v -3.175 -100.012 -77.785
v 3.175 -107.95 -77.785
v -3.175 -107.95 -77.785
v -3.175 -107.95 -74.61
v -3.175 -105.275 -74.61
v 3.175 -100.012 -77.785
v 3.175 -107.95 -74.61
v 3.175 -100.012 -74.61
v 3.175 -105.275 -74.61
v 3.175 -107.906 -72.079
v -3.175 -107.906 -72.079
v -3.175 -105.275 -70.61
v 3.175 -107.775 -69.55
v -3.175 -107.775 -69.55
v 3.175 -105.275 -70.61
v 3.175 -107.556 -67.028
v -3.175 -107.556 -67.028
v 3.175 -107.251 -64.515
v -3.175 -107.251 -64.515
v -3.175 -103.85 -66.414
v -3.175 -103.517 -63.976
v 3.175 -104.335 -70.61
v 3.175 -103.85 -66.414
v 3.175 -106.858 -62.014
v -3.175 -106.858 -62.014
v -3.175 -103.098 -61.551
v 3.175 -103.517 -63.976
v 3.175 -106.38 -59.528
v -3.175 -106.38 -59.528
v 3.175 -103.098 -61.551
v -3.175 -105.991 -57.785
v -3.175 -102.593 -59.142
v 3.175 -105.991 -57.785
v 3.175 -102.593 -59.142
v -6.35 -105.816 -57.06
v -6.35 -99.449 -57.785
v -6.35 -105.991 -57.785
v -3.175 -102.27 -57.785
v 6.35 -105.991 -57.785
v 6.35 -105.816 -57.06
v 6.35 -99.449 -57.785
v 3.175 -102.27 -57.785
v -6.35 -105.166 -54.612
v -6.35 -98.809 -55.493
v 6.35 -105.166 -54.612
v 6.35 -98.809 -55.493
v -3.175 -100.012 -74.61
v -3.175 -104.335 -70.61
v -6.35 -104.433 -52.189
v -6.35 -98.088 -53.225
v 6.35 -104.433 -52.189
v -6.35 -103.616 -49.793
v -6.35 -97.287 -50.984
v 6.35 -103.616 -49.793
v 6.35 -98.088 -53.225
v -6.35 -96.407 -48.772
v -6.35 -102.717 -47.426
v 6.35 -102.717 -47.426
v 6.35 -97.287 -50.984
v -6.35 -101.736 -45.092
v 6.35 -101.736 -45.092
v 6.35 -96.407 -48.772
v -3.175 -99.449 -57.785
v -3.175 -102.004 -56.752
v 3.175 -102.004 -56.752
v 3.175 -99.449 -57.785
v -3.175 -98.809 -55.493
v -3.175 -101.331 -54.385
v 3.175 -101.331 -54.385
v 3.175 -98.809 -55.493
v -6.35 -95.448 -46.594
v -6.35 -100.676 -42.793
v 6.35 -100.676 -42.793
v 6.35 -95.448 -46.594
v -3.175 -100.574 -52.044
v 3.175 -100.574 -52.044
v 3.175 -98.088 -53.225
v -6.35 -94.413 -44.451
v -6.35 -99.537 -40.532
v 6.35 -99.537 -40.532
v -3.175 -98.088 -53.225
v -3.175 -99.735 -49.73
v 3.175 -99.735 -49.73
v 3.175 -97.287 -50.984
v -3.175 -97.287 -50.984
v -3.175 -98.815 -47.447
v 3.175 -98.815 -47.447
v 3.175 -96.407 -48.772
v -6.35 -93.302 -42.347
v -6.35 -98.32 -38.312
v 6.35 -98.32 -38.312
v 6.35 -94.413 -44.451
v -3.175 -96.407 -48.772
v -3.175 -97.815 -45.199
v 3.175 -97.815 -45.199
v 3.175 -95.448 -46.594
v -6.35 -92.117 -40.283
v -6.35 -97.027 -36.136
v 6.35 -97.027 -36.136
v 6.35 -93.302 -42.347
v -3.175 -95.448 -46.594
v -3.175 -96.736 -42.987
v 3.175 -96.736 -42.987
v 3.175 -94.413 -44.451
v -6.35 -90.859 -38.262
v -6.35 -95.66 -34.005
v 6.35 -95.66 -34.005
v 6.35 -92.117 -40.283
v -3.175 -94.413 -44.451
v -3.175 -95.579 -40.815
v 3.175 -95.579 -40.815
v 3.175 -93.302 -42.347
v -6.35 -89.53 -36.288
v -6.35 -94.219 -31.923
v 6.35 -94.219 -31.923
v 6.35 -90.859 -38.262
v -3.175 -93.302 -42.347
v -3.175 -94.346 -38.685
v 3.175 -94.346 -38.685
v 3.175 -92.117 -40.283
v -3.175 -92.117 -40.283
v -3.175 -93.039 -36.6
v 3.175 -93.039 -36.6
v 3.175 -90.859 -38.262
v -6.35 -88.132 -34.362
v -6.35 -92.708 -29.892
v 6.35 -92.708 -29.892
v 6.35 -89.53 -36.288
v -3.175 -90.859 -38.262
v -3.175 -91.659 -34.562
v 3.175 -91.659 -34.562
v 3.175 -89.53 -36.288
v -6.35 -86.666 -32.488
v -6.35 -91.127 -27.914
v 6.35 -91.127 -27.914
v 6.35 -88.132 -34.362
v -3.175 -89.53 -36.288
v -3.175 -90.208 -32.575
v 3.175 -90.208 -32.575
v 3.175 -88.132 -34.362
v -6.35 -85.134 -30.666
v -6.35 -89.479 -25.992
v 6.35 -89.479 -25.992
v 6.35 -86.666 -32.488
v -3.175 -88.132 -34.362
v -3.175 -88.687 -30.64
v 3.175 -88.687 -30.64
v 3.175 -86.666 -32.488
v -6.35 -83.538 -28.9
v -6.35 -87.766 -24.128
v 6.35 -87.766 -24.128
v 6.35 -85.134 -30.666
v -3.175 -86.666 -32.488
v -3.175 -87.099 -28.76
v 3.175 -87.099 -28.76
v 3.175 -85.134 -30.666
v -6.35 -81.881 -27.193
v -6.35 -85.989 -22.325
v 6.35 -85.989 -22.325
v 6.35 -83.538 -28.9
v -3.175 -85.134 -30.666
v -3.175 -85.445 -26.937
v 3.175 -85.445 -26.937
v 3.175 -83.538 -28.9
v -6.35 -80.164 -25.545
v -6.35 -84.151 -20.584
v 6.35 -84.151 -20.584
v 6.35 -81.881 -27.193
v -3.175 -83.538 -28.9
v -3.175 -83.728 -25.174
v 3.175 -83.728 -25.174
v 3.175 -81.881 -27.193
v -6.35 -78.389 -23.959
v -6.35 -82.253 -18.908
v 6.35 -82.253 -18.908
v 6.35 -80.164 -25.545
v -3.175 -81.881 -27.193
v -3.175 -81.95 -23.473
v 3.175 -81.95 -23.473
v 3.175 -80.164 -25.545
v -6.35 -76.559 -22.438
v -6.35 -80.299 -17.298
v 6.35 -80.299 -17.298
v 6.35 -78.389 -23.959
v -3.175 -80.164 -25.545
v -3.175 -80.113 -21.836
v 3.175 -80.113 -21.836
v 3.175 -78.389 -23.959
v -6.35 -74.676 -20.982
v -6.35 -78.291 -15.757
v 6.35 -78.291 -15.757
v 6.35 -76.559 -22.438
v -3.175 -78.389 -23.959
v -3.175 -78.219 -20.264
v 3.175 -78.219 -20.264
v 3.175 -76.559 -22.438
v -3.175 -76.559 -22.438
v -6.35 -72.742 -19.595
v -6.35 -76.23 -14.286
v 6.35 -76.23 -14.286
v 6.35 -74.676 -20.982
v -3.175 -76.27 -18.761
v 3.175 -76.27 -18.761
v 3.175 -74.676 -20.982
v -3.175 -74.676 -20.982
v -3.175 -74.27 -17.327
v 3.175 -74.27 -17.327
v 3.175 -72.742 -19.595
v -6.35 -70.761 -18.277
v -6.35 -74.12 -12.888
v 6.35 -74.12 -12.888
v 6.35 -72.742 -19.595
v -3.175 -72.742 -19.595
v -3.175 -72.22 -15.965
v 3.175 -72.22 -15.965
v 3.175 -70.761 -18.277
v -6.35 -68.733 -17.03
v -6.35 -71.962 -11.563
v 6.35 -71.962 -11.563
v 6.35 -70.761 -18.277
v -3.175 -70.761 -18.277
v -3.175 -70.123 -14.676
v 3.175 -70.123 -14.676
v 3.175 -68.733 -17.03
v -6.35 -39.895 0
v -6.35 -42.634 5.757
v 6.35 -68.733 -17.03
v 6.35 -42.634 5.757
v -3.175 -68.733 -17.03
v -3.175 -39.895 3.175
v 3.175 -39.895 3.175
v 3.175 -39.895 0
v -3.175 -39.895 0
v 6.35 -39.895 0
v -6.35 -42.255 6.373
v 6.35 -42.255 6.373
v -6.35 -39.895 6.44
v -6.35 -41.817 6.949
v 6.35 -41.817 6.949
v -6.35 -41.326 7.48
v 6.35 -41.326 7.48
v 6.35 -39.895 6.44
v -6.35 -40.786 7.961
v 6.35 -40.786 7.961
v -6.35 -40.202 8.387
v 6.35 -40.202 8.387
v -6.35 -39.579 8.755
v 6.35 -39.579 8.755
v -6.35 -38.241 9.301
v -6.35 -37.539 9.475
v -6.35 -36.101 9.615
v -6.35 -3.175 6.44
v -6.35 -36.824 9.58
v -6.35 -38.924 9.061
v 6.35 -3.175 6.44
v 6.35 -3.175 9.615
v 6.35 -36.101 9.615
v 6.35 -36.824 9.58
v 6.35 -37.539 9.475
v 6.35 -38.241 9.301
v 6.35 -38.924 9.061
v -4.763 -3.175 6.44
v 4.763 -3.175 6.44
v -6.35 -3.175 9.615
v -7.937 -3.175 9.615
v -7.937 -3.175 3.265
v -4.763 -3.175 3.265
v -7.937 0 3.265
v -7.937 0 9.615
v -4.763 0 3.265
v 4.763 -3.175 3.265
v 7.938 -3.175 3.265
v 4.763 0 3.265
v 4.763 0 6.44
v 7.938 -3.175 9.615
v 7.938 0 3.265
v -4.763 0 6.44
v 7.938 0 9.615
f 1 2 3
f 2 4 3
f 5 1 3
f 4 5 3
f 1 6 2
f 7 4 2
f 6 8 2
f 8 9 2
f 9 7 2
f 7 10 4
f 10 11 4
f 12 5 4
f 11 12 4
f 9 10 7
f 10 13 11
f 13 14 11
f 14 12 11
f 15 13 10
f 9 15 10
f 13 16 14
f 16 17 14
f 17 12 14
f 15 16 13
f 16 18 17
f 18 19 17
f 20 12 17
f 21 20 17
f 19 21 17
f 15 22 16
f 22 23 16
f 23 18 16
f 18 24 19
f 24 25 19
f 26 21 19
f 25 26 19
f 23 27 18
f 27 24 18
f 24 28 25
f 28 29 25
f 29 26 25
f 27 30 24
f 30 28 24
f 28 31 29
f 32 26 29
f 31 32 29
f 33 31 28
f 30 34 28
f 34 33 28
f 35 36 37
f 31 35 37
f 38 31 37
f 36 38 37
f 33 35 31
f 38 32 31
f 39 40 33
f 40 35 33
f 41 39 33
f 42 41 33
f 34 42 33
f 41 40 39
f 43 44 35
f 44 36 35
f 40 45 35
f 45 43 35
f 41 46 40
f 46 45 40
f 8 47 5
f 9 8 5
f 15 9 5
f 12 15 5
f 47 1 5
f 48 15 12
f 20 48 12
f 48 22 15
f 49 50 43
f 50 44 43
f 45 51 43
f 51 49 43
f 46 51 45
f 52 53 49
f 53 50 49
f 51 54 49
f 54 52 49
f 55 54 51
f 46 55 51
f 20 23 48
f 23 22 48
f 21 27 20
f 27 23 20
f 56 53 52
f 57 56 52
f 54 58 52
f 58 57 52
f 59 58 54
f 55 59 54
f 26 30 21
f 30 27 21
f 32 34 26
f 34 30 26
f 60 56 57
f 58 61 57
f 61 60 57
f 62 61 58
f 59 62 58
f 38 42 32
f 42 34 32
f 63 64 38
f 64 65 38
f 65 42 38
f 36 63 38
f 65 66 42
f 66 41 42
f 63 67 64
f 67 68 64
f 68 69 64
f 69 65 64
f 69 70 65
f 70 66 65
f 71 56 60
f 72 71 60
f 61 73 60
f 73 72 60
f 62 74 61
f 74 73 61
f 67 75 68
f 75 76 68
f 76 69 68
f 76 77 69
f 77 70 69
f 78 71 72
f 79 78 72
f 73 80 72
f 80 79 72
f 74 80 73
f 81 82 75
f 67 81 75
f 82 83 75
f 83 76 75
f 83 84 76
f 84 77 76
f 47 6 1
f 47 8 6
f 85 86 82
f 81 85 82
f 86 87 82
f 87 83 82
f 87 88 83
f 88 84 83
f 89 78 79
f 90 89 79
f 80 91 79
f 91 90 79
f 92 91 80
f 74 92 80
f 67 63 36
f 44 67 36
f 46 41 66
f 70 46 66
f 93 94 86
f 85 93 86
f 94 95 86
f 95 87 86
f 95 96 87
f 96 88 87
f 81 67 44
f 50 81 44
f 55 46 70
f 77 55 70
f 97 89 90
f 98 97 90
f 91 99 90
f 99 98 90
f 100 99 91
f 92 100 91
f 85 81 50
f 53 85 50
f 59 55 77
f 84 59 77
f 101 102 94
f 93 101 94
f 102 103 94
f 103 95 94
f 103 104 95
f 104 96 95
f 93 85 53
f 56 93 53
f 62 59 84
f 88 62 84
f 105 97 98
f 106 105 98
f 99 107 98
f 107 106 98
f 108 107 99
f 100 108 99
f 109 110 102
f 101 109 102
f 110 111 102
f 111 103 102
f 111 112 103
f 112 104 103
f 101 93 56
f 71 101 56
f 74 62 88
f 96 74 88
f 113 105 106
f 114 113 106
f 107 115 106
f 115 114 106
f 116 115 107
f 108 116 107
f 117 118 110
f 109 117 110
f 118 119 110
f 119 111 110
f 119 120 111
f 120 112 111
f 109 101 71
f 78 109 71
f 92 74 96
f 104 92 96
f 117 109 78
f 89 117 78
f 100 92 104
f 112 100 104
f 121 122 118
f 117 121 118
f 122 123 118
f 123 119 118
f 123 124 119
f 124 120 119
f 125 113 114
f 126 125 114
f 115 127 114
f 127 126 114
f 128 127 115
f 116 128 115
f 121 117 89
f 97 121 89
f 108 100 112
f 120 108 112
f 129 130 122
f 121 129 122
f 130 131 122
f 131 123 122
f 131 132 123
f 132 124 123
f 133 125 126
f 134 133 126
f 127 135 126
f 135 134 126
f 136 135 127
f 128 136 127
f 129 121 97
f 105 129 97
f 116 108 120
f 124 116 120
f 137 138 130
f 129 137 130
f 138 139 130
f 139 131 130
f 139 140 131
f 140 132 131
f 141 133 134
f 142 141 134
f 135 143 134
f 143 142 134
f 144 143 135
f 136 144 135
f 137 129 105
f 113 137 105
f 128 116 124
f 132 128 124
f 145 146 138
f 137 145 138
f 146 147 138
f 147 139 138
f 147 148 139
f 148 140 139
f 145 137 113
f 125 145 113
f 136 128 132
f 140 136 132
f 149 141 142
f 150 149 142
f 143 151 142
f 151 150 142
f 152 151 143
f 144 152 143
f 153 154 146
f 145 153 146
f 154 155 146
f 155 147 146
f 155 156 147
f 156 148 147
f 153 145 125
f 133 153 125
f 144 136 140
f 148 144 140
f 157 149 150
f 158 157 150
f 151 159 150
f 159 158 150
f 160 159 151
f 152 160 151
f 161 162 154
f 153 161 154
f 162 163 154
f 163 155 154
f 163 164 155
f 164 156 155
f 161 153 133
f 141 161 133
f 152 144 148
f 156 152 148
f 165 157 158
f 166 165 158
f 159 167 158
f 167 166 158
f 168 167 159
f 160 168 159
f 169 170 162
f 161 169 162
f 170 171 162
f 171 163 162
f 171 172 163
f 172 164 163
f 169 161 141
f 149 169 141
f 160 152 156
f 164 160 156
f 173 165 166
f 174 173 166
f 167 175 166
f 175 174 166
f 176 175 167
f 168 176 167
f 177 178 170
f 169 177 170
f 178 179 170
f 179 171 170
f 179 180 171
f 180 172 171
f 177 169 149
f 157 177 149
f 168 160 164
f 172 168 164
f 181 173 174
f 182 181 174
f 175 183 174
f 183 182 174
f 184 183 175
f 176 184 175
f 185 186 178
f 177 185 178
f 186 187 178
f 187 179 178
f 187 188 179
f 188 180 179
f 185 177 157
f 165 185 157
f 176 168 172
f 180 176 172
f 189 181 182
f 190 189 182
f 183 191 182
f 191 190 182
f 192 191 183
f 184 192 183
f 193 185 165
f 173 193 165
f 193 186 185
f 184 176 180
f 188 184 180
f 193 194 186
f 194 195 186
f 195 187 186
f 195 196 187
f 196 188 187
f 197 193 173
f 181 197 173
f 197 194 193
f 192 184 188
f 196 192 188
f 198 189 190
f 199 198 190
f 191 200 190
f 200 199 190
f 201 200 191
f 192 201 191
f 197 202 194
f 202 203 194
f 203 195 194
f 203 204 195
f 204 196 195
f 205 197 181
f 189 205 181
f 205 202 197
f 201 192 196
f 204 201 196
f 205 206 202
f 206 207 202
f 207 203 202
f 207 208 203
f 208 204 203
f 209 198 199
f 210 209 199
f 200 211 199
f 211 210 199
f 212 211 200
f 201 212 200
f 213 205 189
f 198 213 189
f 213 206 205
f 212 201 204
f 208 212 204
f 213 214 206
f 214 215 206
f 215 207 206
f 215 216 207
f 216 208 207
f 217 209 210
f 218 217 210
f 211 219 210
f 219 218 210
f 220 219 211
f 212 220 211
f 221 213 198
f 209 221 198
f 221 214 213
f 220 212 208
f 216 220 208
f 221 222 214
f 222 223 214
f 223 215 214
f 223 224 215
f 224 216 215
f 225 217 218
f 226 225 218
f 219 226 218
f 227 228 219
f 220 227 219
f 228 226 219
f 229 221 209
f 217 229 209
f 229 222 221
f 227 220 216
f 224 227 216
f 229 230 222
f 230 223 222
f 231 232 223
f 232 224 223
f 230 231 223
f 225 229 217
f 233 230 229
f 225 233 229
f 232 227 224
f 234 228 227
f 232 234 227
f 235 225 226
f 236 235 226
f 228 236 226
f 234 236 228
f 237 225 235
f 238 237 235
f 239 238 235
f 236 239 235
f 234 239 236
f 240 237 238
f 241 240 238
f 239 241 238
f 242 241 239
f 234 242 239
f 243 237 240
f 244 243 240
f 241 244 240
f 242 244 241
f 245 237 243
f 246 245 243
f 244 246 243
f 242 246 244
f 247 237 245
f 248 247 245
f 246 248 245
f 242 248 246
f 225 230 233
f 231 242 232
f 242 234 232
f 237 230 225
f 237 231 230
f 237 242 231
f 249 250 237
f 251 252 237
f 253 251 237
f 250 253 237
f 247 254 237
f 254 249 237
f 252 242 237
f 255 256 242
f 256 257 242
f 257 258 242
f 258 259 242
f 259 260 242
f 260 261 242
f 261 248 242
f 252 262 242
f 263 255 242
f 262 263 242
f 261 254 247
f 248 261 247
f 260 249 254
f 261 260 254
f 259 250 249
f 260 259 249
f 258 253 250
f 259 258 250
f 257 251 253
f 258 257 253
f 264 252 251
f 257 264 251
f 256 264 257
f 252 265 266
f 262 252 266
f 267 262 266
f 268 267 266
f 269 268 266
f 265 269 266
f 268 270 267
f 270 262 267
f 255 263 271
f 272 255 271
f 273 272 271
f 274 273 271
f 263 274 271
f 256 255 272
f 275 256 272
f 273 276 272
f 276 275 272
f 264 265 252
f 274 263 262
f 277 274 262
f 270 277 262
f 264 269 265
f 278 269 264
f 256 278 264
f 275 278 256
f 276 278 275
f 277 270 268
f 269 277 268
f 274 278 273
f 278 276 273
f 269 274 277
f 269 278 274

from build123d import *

# Parameters (mm, degrees)
SKETCH5_W           = 12.880016042
SKETCH5_H           = 15.834691301
CUT_EXTRUDE2_DEPTH  = 7.62
CUT_EXTRUDE6_REACH  = 62
SKETCH11_W          = 3.175
SKETCH11_H          = 3.175
BOSS_EXTRUDE1_DEPTH = 6.35
CUT_EXTRUDE4_DEPTH  = 3.175
SKETCH10_W          = 4
SKETCH10_H          = 0.5
CUT_EXTRUDE5_DEPTH  = 37.349999944
CUT_EXTRUDE7_DEPTH  = 40.64
BOSS_EXTRUDE3_DEPTH = 12.7
SKETCH19_W          = 21.319602533
SKETCH19_H          = 36.10119369
CUT_EXTRUDE10_DEPTH = 13.7
SKETCH15_W          = 6.35
SKETCH15_H          = 3.175
BOSS_EXTRUDE2_DEPTH = 1.5875
SKETCH17_W          = 3.175
SKETCH17_H          = 37.332237063
CUT_EXTRUDE9_DEPTH  = 20


with BuildPart() as part:
    # Sketch2 → Revolve1 (revolve)
    with BuildSketch(Plane(origin=(0, 0, 0), x_dir=(0, 0, -1), z_dir=(1, 0, 0))):
        Polygon((0, -50.8), (-29.999999944, 0), (0, 0), align=None)
    revolve(axis=Axis((0, 0, 0), (0, -1, 0)))

    # Sketch4 → Cut-Revolve1 (revolve, cut)
    with BuildSketch(Plane(origin=(0, 0, 0), x_dir=(0, 0, -1), z_dir=(1, 0, 0))):
        Polygon((0, -45.72), (-24.919999944, 0), (0, 0), align=None)
    revolve(axis=Axis((0, 16.11457811, 0), (0, -1, 0)), mode=Mode.SUBTRACT)

    # Sketch5 → Cut-Extrude2 (cut, symmetric)
    with BuildSketch(Plane(origin=(0, 0, 0), x_dir=(0, 0, -1), z_dir=(1, 0, 0))):
        with Locations((0, -47.812265381)):
            Rectangle(SKETCH5_W, SKETCH5_H)
    extrude(amount=CUT_EXTRUDE2_DEPTH, both=True, mode=Mode.SUBTRACT)

    # Sketch11 → Cut-Extrude6 (cut, up to next)
    with BuildSketch(Plane.XY.offset(29.999999944), mode=Mode.PRIVATE) as cut_extrude6_sk1:
        with Locations((4.7625, -1.5875)):
            Rectangle(SKETCH11_W, SKETCH11_H)
    cut_extrude6_tool1 = extrude(cut_extrude6_sk1.sketch, amount=-CUT_EXTRUDE6_REACH, mode=Mode.PRIVATE) & part.part
    add(cut_extrude6_tool1.solids().sort_by_distance((4.7625, -1.5875, 30))[0], mode=Mode.SUBTRACT)
    # Sketch11 → Cut-Extrude6 (cut, up to next)
    with BuildSketch(Plane.XY.offset(29.999999944), mode=Mode.PRIVATE) as cut_extrude6_sk2:
        with Locations((-4.7625, -1.5875)):
            Rectangle(SKETCH11_W, SKETCH11_H)
    cut_extrude6_tool2 = extrude(cut_extrude6_sk2.sketch, amount=-CUT_EXTRUDE6_REACH, mode=Mode.PRIVATE) & part.part
    add(cut_extrude6_tool2.solids().sort_by_distance((-4.7625, -1.5875, 30))[0], mode=Mode.SUBTRACT)

    # Sketch6 → Boss-Extrude1 (add, symmetric)
    with BuildSketch(Plane(origin=(0, 0, 0), x_dir=(0, 0, -1), z_dir=(1, 0, 0))):
        with BuildLine():
            Line((0, -39.89491973), (-7.374618631, -39.89491973))
            Line((-7.374618631, -39.89491973), (11.56279342, -71.962270863))
            ThreePointArc((11.56279342, -71.962270863), (29.890602823, -92.707185326), (54.61, -105.165575141))
            ThreePointArc((54.61, -105.165575141), (64.513552335, -107.250553005), (74.61, -107.95))
            Line((74.61, -107.95), (77.785, -107.95))
            Line((77.785, -107.95), (77.785, -100.0125))
            Line((77.785, -100.0125), (74.61, -100.0125))
            Line((74.61, -100.0125), (74.61, -101.6))
            ThreePointArc((74.61, -101.6), (41.460280796, -92.804941633), (17.03053379, -68.733290336))
            Line((17.03053379, -68.733290336), (0, -39.89491973))
        make_face()
        Polygon((-30.934610553, 0), (-7.374618631, -39.89491973), (0, -39.89491973), (-23.559991923, 0), align=None)
    extrude(amount=BOSS_EXTRUDE1_DEPTH, both=True)

    # Sketch7 → Cut-Extrude4 (cut)
    with BuildSketch(Plane(origin=(0, 0, 0), x_dir=(0, 0, -1), z_dir=(1, 0, 0))):
        with BuildLine():
            Line((-3.175, -39.89491973), (14.676503495, -70.123465704))
            ThreePointArc((14.676503495, -70.123465704), (36.599939349, -93.039017482), (66.414189392, -103.849662572))
            ThreePointArc((66.414189392, -103.849662572), (70.51080038, -104.32379518), (74.61, -104.775))
            Line((74.61, -104.775), (74.61, -101.6))
            ThreePointArc((74.61, -101.6), (59.345071166, -99.83437787), (44.886242604, -94.630749287))
            ThreePointArc((44.886242604, -94.630749287), (29.078331812, -83.704237641), (17.03053379, -68.733290336))
            Line((17.03053379, -68.733290336), (-23.559991923, 0))
            Line((-23.559991923, 0), (-26.734991923, 0))
            Line((-26.734991923, 0), (-3.175, -39.89491973))
        make_face()
    cut_extrude4 = extrude(amount=-CUT_EXTRUDE4_DEPTH, mode=Mode.SUBTRACT)

    # Mirror1: Cut-Extrude4 across plane
    add(cut_extrude4.mirror(Plane(origin=(0, 0, 0), x_dir=(0, 0, 1), z_dir=(1, 0, 0))), mode=Mode.SUBTRACT)

    # Sketch9 → Cut-Revolve2 (revolve, cut)
    with BuildSketch(Plane(origin=(0, 0, 0), x_dir=(0, 0, -1), z_dir=(1, 0, 0))):
        Polygon((0, 0), (-24.9199908, 0), (-0.536470716, -39.89491973), (0, -39.89491973), align=None)
    revolve(axis=Axis((0, 16.11457811, 0), (0, -1, 0)), mode=Mode.SUBTRACT)

    # Sketch10 → Cut-Extrude5 (cut, through all)
    with BuildSketch(Plane.ZY.offset(6.35)):
        with BuildLine():
            Line((-70.61, -104.775), (-70.61, -101.480258272))
            ThreePointArc((-70.61, -101.480258272), (-72.609104071, -101.570057864), (-74.61, -101.6))
            Line((-74.61, -101.6), (-74.61, -104.775))
            Line((-74.61, -104.775), (-70.61, -104.775))
        make_face()
        with Locations((-72.61, -105.025)):
            Rectangle(SKETCH10_W, SKETCH10_H)
    extrude(amount=-CUT_EXTRUDE5_DEPTH, mode=Mode.SUBTRACT)

    # Sketch12 → Cut-Extrude7 (cut, symmetric)
    with BuildSketch(Plane.ZY):
        Polygon((30, 0), (-61.025869449, 0), (-61.025869449, -39.89491973), (-6.440008021, -39.89491973), (6.44000802, -39.89491973), (27.945214206, -3.175), align=None)
    extrude(amount=CUT_EXTRUDE7_DEPTH, both=True, mode=Mode.SUBTRACT)

    # Sketch18 → Boss-Extrude3 (add)
    with BuildSketch(Plane.ZY.offset(6.35)):
        with BuildLine():
            Line((6.44000802, -39.89491973), (6.44000802, 0))
            Line((6.44000802, 0), (9.61500802, 0))
            Line((9.61500802, 0), (9.61500802, -34.473639686))
            Line((9.61500802, -34.473639686), (9.61500802, -36.10119369))
            ThreePointArc((9.61500802, -36.10119369), (8.57844205, -39.89491973), (5.756782033, -42.634456374))
            Line((5.756782033, -42.634456374), (6.44000802, -41.477527034))
            Line((6.44000802, -41.477527034), (6.44000802, -39.89491973))
        make_face()
    extrude(amount=-BOSS_EXTRUDE3_DEPTH)

    # Sketch19 → Cut-Extrude10 (cut, through all)
    with BuildSketch(Plane.ZY.offset(6.35)):
        with Locations((20.274809287, -18.050596845)):
            Rectangle(SKETCH19_W, SKETCH19_H)
    extrude(amount=-CUT_EXTRUDE10_DEPTH, mode=Mode.SUBTRACT)

    # Sketch15 → Boss-Extrude2 (add, symmetric)
    with BuildSketch(Plane.ZY.offset(6.35)):
        with Locations((6.44000802, -1.5875)):
            Rectangle(SKETCH15_W, SKETCH15_H)
    boss_extrude2 = extrude(amount=BOSS_EXTRUDE2_DEPTH, both=True)

    # Mirror2: Boss-Extrude2 across plane
    add(boss_extrude2.mirror(Plane(origin=(0, 0, 0), x_dir=(0, 0, 1), z_dir=(1, 0, 0))))

    # Sketch17 → Cut-Extrude9 (cut)
    with BuildSketch(Plane(origin=(0, 0, -77.785), x_dir=(-1, 0, 0), z_dir=(0, 0, -1))):
        with Locations((-4.7625, -89.283881468)):
            Rectangle(SKETCH17_W, SKETCH17_H)
        with Locations((4.7625, -89.283881468)):
            Rectangle(SKETCH17_W, SKETCH17_H)
    extrude(amount=-CUT_EXTRUDE9_DEPTH, mode=Mode.SUBTRACT)


solid = part.part
